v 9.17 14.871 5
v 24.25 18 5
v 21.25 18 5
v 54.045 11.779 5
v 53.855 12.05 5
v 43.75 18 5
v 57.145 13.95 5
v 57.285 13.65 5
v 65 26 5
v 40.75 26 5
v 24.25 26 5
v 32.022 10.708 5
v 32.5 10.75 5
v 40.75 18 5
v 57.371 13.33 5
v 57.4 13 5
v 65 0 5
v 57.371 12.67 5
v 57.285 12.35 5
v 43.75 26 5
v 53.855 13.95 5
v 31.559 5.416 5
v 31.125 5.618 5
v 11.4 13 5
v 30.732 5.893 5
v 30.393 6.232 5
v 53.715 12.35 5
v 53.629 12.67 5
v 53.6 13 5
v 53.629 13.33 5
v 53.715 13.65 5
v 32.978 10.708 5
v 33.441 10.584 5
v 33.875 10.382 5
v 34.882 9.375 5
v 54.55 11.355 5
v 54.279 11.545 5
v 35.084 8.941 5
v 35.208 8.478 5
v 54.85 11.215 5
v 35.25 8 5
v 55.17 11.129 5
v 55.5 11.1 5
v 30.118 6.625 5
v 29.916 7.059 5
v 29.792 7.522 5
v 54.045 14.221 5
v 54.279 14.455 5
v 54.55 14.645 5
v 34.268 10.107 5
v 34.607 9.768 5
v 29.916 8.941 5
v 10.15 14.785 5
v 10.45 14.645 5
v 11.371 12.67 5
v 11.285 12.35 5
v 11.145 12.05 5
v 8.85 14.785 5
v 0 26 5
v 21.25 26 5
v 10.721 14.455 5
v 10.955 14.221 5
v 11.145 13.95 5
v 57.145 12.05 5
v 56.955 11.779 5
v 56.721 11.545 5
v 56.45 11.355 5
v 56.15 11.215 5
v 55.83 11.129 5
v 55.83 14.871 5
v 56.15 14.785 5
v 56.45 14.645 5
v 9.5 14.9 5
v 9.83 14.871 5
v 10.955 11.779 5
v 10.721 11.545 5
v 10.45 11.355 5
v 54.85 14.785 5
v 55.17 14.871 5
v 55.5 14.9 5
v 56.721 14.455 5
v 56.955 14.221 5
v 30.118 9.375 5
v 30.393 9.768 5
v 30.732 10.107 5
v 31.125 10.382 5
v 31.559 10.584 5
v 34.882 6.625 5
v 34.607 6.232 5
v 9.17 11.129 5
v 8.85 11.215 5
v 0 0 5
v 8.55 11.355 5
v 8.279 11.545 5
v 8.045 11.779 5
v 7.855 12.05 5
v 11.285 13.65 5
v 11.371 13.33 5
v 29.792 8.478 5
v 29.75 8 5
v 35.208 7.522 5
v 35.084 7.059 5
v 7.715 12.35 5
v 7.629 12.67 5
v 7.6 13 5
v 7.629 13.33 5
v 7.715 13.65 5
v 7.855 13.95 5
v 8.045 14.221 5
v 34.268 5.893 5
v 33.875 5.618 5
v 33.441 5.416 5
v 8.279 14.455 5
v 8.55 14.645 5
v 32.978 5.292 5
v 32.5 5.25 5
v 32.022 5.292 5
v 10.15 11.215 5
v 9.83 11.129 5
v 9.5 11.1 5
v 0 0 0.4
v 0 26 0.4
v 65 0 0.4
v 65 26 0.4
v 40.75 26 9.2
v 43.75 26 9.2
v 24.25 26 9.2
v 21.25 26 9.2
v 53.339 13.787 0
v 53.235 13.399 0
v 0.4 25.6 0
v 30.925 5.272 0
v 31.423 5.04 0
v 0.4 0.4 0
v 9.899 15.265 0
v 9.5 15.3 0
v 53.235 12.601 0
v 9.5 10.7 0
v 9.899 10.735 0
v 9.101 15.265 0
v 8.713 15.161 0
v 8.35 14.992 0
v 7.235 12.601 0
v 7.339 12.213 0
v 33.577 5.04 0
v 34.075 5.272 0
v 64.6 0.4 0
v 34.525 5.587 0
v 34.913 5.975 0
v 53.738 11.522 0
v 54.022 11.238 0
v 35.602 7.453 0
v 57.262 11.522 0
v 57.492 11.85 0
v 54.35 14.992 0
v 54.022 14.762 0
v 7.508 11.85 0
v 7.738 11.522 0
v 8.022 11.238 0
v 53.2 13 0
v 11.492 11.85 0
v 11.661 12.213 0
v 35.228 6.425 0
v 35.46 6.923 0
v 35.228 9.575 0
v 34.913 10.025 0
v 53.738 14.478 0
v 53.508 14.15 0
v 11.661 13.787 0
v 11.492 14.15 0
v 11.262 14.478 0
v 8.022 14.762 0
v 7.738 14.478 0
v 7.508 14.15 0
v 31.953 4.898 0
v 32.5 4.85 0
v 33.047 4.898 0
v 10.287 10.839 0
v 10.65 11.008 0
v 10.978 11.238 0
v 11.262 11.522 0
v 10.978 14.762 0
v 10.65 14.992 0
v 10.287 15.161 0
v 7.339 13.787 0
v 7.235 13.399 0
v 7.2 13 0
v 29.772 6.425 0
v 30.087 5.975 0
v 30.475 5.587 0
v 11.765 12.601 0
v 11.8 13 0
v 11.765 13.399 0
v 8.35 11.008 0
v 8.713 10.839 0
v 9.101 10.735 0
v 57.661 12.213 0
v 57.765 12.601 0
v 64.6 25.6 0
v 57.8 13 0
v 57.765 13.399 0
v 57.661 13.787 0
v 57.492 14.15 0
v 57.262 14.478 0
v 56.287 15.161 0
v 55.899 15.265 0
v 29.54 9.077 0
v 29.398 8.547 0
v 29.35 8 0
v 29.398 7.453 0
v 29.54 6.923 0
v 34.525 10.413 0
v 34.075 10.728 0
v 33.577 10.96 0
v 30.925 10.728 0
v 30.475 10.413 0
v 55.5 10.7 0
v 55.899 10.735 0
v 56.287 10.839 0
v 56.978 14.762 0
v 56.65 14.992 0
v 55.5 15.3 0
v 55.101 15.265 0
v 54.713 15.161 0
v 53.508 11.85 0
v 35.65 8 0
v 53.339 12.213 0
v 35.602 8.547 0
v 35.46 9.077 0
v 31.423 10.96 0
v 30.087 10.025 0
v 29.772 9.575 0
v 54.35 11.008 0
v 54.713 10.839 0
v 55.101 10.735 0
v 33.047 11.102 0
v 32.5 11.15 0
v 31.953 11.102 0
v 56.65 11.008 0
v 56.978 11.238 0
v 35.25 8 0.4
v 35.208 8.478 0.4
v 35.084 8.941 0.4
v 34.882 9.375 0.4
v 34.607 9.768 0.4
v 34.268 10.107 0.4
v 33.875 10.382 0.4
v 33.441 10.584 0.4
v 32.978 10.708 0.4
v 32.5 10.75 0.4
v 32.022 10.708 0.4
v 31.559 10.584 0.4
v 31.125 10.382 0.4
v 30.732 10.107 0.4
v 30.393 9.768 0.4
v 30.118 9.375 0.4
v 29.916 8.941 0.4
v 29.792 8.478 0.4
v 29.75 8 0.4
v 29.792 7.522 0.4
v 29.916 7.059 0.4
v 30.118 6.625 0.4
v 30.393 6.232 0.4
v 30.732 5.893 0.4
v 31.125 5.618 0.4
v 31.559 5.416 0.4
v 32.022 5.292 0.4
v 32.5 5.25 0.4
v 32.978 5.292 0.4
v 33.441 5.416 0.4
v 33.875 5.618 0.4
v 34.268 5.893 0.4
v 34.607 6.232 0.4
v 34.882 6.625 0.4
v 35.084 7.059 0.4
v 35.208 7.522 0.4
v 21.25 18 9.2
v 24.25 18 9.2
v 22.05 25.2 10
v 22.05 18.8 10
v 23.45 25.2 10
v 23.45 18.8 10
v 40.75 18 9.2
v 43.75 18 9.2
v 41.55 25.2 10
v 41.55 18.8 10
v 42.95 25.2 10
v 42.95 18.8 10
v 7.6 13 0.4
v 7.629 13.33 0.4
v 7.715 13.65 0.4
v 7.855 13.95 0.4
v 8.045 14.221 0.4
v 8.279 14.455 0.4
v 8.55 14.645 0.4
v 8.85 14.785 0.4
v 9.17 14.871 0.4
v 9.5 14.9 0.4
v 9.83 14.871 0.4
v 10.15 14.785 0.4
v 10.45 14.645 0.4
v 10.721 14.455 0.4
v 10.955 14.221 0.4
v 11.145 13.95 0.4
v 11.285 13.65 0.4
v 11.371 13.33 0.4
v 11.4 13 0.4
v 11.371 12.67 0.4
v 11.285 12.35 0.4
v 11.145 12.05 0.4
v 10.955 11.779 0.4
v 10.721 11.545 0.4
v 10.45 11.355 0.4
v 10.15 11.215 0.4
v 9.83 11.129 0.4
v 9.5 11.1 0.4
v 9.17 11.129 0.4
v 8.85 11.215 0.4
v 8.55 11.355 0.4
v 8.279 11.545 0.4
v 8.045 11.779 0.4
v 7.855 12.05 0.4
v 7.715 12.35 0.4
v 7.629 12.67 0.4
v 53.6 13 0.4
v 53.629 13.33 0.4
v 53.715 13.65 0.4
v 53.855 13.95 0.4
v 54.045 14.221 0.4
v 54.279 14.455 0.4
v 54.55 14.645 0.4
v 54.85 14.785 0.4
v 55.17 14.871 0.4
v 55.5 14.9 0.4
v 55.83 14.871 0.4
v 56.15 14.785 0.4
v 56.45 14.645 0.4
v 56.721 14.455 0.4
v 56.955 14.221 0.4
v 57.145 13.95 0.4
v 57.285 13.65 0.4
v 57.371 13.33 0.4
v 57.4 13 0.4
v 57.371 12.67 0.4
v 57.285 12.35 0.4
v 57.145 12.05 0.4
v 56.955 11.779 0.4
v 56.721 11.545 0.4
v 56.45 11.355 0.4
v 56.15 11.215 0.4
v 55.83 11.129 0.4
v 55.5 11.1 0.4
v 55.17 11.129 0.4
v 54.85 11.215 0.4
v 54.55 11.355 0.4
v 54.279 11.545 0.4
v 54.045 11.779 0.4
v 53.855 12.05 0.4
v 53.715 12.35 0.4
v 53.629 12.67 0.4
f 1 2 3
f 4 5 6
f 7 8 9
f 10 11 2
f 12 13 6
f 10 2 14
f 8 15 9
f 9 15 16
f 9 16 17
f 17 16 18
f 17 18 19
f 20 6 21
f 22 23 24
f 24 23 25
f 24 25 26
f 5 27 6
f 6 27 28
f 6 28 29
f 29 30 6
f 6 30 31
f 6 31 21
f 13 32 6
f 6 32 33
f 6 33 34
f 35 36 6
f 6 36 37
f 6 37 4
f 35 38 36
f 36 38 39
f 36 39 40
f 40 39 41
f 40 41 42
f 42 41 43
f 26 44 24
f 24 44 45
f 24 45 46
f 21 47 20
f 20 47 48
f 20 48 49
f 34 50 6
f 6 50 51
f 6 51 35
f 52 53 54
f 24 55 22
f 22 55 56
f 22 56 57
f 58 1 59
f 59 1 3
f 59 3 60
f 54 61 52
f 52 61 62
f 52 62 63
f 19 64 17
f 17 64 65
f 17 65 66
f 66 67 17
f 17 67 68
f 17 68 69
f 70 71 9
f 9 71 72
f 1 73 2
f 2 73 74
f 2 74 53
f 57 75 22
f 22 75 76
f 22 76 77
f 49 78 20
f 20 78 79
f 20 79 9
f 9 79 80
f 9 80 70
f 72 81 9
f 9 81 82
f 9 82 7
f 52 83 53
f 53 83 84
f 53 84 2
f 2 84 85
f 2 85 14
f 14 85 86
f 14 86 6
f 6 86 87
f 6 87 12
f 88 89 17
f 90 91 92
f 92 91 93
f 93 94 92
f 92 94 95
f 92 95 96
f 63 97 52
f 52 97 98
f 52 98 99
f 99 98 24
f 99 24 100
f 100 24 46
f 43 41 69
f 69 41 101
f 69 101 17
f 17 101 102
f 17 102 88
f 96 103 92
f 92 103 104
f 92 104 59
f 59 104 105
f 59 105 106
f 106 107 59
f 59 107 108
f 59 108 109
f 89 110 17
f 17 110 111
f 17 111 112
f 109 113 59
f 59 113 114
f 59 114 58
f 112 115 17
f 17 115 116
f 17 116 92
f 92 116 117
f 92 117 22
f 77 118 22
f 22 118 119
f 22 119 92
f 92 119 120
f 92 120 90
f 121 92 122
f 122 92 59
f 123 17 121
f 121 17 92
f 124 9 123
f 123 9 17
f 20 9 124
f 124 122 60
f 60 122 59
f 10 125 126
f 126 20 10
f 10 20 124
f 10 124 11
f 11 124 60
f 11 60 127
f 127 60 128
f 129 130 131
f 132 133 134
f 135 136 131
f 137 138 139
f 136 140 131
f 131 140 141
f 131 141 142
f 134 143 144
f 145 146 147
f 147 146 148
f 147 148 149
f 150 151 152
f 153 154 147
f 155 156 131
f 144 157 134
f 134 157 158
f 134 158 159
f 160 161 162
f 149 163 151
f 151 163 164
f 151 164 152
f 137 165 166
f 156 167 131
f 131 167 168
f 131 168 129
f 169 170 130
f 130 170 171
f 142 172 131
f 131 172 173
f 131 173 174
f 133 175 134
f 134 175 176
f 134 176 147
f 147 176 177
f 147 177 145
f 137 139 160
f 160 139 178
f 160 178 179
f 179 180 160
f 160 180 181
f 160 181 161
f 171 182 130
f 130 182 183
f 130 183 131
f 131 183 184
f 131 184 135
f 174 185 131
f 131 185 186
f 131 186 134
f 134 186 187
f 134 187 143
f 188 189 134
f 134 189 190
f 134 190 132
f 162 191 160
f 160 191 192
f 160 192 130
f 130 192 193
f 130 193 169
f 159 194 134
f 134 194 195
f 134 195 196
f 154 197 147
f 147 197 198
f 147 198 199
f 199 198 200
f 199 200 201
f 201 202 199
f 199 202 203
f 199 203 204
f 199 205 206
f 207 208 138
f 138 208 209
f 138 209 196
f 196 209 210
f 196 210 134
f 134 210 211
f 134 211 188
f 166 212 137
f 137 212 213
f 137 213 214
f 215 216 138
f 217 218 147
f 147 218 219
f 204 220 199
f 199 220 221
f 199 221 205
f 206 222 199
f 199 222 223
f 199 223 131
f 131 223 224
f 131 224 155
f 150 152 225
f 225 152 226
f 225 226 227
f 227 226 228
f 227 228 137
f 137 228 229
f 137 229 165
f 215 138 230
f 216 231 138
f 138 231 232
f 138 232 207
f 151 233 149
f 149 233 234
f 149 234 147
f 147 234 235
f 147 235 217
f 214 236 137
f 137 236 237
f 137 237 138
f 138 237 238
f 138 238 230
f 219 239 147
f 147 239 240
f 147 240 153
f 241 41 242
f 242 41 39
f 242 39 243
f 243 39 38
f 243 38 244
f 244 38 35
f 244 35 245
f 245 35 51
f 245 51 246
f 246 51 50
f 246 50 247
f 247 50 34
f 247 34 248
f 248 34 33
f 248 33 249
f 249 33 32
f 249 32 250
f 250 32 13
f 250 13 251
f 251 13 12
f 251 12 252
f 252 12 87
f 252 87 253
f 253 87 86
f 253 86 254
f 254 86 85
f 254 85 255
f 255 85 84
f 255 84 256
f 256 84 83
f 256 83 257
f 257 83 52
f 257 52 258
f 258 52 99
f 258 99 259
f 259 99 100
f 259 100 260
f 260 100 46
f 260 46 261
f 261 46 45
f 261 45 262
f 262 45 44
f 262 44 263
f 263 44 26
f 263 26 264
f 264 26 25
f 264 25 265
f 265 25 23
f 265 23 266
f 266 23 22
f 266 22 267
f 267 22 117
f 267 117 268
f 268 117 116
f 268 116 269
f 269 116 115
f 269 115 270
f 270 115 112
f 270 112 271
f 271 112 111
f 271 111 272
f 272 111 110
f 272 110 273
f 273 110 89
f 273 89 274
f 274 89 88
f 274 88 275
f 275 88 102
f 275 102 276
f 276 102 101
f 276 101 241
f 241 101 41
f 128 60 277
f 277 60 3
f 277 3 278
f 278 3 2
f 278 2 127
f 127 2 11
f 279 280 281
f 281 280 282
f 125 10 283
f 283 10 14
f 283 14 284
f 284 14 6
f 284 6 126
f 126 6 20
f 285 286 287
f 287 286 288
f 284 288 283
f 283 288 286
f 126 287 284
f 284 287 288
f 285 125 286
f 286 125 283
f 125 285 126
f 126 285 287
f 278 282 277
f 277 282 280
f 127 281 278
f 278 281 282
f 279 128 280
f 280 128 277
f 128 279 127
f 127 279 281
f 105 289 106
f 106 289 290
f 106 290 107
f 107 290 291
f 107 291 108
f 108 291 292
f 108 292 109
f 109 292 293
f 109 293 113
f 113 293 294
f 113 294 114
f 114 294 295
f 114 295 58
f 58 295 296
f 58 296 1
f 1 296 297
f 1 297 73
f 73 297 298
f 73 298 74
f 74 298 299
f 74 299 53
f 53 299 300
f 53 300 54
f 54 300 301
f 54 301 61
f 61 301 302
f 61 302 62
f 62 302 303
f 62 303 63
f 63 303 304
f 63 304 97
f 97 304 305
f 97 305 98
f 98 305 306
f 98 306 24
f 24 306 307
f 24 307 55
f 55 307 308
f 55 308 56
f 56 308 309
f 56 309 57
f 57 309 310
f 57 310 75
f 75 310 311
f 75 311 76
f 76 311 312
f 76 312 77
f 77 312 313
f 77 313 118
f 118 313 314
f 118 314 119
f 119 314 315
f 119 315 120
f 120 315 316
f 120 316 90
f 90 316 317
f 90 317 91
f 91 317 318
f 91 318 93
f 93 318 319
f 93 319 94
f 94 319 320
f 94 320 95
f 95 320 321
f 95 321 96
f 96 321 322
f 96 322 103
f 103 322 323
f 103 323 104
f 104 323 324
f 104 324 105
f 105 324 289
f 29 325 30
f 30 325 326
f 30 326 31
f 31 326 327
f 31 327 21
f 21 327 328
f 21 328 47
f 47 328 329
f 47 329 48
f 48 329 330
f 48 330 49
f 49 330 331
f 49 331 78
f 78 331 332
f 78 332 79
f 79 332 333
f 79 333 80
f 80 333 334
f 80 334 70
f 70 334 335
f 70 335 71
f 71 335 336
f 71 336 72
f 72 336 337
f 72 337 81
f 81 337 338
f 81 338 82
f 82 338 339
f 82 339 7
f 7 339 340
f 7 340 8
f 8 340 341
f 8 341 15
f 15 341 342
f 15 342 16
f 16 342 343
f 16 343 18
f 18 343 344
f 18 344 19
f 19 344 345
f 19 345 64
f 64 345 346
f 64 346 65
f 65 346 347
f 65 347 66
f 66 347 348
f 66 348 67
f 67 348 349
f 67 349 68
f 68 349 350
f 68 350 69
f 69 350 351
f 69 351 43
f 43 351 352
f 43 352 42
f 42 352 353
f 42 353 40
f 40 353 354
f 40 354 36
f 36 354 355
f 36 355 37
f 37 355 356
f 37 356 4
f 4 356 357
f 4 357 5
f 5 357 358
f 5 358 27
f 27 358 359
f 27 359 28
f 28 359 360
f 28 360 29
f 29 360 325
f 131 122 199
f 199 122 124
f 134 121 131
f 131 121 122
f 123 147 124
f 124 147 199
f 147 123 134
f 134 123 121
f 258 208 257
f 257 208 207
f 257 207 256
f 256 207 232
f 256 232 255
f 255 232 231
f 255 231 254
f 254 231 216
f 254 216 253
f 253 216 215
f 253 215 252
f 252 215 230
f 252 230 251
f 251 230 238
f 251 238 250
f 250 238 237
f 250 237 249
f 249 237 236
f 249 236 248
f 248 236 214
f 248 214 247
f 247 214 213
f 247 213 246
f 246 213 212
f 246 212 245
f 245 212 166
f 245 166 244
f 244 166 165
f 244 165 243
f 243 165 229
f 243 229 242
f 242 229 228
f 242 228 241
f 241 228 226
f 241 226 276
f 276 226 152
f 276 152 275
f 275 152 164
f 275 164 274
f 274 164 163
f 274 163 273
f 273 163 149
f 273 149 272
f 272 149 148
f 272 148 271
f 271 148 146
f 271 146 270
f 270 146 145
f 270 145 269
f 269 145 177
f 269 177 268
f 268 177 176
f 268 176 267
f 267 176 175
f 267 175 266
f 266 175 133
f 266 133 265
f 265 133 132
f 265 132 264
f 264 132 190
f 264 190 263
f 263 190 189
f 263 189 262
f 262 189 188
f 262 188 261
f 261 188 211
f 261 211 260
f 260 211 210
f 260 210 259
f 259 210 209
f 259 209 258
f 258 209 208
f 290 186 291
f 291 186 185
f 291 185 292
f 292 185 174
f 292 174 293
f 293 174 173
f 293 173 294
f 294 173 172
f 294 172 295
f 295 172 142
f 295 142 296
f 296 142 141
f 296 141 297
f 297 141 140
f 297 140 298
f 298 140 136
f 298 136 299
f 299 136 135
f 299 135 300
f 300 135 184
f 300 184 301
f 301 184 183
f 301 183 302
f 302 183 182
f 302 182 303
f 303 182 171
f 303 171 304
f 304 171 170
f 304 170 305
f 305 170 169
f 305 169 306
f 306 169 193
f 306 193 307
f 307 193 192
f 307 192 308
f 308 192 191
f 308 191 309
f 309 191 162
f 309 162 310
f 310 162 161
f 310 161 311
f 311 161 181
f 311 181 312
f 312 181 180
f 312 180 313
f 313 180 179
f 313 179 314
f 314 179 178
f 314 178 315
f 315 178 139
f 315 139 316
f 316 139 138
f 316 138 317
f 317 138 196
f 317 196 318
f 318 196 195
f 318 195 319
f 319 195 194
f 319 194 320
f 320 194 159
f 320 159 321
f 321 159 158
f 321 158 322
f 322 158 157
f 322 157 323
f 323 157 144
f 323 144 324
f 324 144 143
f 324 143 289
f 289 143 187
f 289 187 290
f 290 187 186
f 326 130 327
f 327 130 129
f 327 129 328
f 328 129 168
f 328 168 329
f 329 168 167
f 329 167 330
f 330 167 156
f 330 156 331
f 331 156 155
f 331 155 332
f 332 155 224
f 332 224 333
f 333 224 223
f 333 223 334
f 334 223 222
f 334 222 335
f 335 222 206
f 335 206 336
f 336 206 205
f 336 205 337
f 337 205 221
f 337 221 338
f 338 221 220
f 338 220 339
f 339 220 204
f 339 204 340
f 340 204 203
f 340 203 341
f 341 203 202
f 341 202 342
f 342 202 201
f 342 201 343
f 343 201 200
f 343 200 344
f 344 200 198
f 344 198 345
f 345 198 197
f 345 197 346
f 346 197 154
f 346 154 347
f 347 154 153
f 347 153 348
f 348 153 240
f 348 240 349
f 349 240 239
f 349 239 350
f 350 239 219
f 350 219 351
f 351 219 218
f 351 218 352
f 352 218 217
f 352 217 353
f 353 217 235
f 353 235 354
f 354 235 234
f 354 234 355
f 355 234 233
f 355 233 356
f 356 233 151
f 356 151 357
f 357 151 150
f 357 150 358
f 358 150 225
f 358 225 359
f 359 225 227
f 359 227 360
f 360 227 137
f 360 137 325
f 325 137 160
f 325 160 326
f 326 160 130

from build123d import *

# Parameters (mm, degrees)
SKETCH1_W           = 65
SKETCH1_H           = 26
BOSS_EXTRUDE1_DEPTH = 5
SKETCH2_R           = 2.75
CUT_EXTRUDE1_DEPTH  = 5
SKETCH3_W           = 3
SKETCH3_H           = 8
BOSS_EXTRUDE2_DEPTH = 5
CHAMFER1_SIZE       = 0.8
SKETCH4_R           = 1.9
CUT_EXTRUDE2_DEPTH  = 5
CHAMFER2_SIZE       = 0.4


with BuildPart() as part:
    # Sketch1 → Boss-Extrude1 (new body)
    with BuildSketch(Plane.XY):
        with Locations((32.5, 13)):
            Rectangle(SKETCH1_W, SKETCH1_H)
    extrude(amount=BOSS_EXTRUDE1_DEPTH)

    # Sketch2 → Cut-Extrude1 (cut)
    with BuildSketch(Plane.XY.offset(5)):
        with Locations((32.5, 8)):
            Circle(SKETCH2_R)
    extrude(amount=-CUT_EXTRUDE1_DEPTH, mode=Mode.SUBTRACT)

    # Sketch3 → Boss-Extrude2 (add)
    with BuildSketch(Plane.XY.offset(5)):
        with Locations((22.75, 22)):
            Rectangle(SKETCH3_W, SKETCH3_H)
        with Locations((42.25, 22)):
            Rectangle(SKETCH3_W, SKETCH3_H)
    extrude(amount=BOSS_EXTRUDE2_DEPTH)

    # Chamfer1
    chamfer1_edges = [part.edges().sort_by_distance(p)[0] for p in [
        (21.25, 22, 10),
        (22.75, 18, 10),
        (24.25, 22, 10),
        (22.75, 26, 10),
        (40.75, 22, 10),
        (42.25, 18, 10),
        (43.75, 22, 10),
        (42.25, 26, 10),
    ]]
    chamfer(chamfer1_edges, length=CHAMFER1_SIZE)

    # Sketch4 → Cut-Extrude2 (cut)
    with BuildSketch(Plane(origin=(0, 0, 0), x_dir=(-1, 0, 0), z_dir=(0, 0, -1))):
        with Locations((-55.5, 13)):
            Circle(SKETCH4_R)
        with Locations((-9.5, 13)):
            Circle(SKETCH4_R)
    extrude(amount=-CUT_EXTRUDE2_DEPTH, mode=Mode.SUBTRACT)

    # Chamfer2
    chamfer2_edges = [part.edges().sort_by_distance(p)[0] for p in [
        (29.75, 8, 0),
        (32.5, 26, 0),
        (65, 13, 0),
        (32.5, 0, 0),
        (0, 13, 0),
        (57.4, 13, 0),
        (11.4, 13, 0),
    ]]
    chamfer(chamfer2_edges, length=CHAMFER2_SIZE)


solid = part.part
